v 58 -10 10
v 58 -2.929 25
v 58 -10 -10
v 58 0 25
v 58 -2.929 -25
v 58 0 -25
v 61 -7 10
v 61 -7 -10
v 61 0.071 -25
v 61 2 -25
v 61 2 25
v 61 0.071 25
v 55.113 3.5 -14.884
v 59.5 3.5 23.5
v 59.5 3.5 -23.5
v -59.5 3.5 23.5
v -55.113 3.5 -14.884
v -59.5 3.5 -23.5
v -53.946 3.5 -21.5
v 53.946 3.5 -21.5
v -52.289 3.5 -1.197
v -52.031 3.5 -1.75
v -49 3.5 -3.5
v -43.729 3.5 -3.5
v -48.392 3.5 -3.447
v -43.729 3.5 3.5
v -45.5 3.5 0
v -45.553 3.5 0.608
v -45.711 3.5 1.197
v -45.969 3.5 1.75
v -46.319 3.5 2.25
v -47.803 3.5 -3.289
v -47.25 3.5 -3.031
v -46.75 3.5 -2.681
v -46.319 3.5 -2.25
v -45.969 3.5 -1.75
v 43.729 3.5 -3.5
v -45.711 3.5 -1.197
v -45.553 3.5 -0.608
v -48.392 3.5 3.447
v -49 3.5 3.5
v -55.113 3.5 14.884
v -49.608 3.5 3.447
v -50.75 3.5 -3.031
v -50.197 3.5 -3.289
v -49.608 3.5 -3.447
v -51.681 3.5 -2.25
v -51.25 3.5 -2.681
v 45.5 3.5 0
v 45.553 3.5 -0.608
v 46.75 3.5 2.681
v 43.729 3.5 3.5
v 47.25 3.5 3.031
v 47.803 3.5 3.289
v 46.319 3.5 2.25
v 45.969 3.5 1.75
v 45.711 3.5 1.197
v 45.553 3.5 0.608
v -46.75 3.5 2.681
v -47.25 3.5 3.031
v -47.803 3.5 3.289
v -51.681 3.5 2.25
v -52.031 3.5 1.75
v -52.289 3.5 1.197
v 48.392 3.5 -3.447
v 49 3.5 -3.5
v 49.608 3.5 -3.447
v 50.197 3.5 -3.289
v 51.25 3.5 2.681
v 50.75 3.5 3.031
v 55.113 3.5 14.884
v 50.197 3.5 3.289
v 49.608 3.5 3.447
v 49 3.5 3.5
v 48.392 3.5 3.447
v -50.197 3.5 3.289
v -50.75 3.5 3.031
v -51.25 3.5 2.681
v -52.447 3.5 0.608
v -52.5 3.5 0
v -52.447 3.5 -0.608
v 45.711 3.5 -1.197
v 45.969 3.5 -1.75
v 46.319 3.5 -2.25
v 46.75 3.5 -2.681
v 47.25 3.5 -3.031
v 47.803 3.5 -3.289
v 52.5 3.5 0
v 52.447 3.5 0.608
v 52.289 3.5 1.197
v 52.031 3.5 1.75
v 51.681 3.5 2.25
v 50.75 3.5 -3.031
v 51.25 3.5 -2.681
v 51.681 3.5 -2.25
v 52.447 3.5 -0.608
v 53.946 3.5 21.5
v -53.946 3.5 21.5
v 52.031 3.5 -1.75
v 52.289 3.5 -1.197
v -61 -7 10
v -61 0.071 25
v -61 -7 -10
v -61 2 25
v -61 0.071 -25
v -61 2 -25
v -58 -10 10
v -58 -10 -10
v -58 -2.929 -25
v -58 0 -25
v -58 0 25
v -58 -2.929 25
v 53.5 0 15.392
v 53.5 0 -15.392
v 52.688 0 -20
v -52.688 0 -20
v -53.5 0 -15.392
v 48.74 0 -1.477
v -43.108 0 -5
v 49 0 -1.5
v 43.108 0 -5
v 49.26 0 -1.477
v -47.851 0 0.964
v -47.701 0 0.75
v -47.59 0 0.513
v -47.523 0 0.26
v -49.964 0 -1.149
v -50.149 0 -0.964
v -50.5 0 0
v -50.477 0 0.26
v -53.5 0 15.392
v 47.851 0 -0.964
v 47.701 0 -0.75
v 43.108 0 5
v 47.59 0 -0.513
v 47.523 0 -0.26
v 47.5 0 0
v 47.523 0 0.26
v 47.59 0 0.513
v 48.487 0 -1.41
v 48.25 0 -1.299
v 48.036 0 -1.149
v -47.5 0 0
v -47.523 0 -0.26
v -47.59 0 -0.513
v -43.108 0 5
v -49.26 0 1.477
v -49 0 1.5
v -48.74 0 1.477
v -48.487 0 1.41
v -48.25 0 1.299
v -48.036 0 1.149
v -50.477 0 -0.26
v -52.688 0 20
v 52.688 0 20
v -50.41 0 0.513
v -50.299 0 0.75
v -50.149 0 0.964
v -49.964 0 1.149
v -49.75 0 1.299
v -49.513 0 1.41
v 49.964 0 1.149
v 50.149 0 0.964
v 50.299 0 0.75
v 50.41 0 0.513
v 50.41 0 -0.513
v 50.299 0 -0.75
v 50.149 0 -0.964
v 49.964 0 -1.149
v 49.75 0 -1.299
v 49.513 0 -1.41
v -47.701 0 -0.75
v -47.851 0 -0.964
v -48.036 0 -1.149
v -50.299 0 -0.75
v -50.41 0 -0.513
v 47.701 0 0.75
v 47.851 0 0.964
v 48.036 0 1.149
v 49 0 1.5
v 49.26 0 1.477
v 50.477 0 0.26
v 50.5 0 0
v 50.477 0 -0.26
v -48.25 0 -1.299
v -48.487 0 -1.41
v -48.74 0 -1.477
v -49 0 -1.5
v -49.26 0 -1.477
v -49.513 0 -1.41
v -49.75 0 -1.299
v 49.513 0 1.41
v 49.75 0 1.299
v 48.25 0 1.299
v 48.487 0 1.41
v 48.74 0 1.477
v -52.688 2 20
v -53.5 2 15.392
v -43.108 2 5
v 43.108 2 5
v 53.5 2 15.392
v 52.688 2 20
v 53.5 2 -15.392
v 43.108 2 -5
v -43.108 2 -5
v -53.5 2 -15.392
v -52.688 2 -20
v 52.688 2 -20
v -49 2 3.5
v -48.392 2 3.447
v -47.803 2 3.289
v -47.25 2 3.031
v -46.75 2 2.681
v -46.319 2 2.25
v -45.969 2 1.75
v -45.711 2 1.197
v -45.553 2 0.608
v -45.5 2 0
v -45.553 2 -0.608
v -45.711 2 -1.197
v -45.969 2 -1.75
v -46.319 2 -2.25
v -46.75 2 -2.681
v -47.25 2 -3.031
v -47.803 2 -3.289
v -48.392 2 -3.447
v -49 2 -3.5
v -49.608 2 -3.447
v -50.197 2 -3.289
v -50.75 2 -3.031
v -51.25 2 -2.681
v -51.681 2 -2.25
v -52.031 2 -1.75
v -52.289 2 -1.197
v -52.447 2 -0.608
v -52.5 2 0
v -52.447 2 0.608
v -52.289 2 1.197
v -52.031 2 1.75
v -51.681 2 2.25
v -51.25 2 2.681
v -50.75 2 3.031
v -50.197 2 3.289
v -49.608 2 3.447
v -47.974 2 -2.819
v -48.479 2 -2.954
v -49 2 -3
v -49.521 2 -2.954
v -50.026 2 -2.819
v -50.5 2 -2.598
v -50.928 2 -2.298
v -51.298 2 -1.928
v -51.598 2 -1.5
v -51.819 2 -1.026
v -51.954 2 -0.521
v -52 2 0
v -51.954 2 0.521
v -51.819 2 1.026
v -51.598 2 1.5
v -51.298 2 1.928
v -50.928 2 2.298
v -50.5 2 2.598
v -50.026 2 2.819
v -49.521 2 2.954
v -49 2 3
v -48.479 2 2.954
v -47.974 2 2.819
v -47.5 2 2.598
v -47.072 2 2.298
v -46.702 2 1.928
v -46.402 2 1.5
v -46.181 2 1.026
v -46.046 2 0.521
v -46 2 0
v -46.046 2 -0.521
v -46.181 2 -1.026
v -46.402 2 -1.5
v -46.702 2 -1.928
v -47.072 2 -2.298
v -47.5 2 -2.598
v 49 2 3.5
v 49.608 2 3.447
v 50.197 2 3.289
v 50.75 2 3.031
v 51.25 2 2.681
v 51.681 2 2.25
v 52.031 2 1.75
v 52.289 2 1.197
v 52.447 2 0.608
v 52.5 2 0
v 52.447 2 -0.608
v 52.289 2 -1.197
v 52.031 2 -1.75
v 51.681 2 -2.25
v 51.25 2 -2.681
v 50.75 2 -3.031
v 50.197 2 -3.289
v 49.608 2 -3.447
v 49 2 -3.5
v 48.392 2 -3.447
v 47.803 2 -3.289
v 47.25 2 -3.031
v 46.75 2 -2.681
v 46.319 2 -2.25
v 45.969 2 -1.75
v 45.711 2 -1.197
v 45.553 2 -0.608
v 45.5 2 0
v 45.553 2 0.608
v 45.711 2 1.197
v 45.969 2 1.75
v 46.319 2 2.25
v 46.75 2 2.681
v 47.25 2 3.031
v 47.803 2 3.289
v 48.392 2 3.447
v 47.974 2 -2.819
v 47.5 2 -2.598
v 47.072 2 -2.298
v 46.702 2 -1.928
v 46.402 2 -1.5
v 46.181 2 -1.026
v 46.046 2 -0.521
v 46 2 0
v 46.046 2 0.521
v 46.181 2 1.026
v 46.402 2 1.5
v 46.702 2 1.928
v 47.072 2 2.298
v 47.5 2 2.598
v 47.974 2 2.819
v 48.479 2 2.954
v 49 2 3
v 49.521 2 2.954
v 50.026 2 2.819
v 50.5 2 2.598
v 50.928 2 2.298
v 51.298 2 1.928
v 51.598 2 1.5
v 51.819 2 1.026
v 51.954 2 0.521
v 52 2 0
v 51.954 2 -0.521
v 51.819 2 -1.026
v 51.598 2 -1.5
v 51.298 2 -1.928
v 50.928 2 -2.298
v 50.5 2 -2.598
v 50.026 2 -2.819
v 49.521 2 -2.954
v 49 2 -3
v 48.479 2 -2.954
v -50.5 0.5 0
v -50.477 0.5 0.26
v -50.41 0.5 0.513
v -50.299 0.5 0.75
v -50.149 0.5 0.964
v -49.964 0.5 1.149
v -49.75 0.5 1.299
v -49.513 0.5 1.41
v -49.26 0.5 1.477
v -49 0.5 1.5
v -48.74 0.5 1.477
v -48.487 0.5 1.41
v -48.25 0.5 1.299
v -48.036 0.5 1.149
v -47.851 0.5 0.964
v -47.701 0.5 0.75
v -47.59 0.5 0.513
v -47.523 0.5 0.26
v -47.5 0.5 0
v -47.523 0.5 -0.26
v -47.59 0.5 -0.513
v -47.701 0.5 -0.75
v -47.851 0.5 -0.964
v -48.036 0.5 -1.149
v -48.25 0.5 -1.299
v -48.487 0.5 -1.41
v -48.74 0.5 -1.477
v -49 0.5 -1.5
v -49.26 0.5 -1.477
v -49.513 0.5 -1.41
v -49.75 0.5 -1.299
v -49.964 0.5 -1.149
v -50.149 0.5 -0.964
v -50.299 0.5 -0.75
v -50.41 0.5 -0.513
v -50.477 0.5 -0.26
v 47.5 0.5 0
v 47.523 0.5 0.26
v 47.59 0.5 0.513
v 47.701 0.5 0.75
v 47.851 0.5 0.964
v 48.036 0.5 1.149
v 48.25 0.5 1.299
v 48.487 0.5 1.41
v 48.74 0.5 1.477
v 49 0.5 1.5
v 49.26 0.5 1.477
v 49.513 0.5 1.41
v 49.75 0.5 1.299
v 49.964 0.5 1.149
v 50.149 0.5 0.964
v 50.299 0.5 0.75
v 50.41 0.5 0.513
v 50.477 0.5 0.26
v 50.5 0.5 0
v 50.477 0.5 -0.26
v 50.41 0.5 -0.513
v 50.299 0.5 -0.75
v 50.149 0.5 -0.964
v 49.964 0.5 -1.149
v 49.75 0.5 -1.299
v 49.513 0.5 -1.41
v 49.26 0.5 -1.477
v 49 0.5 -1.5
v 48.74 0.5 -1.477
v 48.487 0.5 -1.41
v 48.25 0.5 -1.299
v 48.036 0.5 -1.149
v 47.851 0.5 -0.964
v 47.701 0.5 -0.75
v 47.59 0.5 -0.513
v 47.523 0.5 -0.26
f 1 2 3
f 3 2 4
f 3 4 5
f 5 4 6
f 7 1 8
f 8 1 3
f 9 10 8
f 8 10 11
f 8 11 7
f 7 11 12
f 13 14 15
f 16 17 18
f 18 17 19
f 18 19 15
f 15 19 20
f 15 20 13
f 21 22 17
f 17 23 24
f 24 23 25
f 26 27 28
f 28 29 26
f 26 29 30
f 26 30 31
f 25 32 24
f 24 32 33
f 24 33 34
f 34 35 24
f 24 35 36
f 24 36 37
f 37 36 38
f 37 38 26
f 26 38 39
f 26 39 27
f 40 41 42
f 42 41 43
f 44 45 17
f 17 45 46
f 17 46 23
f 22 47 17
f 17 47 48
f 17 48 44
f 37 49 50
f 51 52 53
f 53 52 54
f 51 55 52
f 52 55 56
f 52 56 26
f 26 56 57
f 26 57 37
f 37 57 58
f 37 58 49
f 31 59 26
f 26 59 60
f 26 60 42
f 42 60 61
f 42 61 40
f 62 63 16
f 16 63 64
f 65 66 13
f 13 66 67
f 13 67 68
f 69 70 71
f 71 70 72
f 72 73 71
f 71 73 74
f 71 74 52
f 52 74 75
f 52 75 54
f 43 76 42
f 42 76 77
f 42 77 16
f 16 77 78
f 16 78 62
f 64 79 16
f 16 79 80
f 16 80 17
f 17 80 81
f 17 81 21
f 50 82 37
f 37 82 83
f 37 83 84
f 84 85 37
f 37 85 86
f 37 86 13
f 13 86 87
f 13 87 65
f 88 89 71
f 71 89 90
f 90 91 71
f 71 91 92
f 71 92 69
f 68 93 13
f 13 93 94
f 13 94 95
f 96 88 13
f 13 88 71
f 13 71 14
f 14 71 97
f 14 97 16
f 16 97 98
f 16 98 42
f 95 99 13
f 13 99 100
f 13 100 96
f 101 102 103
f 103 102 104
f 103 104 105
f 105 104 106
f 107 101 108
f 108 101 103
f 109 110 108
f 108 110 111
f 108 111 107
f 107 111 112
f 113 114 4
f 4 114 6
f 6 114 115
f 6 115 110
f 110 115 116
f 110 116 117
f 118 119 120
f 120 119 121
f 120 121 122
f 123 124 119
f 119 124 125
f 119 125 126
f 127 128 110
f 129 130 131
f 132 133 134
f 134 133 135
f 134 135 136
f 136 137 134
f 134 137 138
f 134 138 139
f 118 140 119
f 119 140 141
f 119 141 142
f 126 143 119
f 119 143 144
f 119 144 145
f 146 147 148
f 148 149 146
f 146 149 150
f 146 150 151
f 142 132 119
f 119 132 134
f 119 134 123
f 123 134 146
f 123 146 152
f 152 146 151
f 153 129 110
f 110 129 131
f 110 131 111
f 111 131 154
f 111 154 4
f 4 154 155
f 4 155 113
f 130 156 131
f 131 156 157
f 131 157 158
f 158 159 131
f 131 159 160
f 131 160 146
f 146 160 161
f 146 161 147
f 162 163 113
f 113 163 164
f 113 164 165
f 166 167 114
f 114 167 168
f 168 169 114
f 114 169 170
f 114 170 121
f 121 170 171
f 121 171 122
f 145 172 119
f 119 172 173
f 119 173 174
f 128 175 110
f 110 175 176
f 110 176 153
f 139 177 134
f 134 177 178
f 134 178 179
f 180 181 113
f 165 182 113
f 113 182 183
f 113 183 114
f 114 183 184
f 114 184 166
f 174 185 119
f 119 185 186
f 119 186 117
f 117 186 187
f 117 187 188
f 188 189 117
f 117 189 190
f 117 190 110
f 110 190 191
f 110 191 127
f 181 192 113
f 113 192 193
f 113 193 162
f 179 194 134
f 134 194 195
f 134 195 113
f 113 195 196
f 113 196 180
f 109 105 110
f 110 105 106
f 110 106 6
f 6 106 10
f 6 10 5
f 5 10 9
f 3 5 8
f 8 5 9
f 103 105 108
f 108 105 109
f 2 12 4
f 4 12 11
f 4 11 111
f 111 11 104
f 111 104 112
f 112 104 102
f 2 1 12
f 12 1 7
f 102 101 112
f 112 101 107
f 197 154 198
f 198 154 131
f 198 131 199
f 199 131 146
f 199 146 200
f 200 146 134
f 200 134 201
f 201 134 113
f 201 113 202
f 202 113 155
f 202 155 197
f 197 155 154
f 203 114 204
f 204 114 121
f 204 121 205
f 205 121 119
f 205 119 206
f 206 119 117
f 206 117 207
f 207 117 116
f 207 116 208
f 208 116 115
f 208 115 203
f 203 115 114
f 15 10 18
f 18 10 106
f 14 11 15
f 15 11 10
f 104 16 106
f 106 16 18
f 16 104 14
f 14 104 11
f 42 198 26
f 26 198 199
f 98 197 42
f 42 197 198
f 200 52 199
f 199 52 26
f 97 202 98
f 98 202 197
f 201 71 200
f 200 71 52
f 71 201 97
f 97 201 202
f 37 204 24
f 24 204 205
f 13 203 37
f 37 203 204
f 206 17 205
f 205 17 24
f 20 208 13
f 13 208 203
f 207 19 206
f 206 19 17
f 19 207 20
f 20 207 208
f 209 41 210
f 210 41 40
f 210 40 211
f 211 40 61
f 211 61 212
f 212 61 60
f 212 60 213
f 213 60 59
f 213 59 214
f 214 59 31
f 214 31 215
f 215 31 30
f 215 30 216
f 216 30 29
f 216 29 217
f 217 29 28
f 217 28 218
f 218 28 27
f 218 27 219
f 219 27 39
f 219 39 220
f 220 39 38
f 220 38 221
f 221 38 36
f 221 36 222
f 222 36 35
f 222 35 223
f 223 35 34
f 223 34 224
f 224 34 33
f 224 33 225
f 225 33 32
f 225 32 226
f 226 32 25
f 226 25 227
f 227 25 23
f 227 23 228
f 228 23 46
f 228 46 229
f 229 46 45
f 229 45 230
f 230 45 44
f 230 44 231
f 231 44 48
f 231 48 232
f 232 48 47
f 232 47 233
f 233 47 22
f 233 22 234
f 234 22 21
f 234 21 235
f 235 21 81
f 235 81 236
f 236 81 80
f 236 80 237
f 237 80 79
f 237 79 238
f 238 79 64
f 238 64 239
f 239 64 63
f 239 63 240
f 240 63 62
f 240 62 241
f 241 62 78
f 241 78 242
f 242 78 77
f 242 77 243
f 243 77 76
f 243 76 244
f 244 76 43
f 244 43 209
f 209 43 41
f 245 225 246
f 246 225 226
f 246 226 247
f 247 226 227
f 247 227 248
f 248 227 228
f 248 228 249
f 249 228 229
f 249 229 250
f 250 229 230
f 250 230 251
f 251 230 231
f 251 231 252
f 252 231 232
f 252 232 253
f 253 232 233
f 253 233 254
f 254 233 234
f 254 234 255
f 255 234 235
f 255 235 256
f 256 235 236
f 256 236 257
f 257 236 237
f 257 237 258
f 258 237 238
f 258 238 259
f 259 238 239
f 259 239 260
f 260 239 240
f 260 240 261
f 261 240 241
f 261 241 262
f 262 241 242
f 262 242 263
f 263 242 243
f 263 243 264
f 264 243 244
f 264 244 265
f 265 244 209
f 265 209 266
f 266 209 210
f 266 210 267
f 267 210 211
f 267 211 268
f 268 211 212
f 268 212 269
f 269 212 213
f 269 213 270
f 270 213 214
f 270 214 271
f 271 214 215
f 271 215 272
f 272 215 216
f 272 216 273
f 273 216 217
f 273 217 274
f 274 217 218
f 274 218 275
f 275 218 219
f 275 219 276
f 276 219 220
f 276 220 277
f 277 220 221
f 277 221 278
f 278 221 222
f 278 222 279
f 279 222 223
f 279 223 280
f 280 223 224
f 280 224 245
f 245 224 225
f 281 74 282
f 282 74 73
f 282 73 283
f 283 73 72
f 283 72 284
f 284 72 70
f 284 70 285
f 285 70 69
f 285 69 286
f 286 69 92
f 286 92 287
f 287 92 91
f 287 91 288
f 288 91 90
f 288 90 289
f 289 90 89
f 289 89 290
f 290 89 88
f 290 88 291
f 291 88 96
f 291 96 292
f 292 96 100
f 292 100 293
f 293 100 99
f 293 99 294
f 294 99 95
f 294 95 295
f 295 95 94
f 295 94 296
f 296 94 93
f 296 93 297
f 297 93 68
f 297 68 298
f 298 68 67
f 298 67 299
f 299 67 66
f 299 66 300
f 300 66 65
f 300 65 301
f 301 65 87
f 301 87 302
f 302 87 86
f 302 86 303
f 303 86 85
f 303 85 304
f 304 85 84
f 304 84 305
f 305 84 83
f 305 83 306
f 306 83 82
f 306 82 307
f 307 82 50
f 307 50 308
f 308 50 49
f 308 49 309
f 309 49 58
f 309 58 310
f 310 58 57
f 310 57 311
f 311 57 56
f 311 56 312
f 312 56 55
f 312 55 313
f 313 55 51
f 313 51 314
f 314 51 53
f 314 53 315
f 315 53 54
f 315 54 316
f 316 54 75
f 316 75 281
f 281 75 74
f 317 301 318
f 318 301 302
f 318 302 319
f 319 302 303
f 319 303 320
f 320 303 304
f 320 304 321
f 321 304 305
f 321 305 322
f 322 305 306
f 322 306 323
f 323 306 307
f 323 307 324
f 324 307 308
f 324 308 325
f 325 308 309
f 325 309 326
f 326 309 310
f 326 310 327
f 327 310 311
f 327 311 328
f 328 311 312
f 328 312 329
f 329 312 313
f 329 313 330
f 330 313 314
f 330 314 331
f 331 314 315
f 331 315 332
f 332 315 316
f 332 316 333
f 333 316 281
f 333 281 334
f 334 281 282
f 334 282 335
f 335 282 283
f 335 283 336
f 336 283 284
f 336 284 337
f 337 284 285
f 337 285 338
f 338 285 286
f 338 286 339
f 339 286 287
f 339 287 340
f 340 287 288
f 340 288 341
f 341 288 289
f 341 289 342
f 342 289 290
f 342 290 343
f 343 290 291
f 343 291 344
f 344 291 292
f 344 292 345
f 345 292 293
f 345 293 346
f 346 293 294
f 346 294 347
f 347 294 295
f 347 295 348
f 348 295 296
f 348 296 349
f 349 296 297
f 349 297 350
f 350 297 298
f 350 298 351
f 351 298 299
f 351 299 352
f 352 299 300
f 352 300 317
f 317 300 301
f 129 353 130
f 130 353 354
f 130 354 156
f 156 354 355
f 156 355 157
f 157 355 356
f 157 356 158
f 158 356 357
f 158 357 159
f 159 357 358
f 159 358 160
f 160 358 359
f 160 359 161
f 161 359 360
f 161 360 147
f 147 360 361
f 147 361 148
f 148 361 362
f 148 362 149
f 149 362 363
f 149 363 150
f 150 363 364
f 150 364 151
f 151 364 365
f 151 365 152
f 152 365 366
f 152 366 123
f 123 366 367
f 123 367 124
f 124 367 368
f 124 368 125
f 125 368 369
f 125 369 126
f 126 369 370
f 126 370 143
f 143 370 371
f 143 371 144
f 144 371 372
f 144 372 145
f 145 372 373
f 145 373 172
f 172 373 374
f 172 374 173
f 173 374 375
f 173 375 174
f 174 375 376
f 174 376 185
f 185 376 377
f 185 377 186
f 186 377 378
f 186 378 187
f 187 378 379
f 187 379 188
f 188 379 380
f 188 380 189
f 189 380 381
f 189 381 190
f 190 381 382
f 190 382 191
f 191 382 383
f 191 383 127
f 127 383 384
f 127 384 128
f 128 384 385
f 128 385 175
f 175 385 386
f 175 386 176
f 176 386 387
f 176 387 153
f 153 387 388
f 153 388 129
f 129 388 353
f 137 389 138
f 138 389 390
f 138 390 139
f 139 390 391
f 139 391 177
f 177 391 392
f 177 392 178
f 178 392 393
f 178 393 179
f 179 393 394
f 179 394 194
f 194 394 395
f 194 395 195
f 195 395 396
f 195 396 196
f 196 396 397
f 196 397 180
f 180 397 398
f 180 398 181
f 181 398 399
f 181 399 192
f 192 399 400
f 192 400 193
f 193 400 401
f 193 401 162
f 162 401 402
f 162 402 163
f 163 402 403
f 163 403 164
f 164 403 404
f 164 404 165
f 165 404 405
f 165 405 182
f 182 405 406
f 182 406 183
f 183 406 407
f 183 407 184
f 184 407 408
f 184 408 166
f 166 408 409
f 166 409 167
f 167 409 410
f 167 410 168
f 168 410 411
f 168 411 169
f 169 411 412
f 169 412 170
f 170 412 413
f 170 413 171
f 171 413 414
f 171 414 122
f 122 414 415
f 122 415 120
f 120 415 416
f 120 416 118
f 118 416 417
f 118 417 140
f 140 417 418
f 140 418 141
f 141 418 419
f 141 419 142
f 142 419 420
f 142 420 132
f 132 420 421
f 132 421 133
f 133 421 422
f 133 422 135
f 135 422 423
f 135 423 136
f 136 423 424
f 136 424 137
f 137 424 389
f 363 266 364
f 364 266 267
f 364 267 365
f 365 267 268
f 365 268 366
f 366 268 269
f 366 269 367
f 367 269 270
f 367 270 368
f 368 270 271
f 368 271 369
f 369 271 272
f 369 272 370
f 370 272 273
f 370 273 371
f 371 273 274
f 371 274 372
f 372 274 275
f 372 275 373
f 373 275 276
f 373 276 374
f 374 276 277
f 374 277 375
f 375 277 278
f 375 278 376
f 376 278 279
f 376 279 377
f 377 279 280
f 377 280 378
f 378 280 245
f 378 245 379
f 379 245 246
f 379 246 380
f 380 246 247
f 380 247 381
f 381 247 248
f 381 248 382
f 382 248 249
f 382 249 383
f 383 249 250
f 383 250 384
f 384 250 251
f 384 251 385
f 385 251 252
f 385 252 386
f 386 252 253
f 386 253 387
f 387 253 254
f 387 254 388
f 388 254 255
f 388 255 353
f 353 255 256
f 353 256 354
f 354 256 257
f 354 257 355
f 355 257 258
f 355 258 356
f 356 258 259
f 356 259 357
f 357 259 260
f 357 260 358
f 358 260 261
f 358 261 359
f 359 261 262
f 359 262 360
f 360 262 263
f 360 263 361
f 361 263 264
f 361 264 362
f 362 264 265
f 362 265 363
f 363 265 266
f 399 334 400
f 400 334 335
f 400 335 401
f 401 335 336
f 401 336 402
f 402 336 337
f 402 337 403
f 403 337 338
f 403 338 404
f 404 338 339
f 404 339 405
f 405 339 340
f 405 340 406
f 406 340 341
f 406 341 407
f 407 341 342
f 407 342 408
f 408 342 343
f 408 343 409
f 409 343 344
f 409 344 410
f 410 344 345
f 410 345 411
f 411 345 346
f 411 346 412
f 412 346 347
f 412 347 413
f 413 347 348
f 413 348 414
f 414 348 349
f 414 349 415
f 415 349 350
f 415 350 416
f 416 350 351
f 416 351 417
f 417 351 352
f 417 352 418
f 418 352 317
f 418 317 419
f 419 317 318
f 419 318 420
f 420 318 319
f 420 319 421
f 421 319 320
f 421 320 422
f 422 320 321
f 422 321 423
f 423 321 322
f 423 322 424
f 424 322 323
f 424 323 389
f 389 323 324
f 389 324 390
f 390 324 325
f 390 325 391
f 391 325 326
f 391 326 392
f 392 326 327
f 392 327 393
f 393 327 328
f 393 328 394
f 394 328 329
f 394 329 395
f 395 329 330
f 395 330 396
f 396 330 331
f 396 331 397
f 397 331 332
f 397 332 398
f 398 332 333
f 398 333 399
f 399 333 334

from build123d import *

# Parameters (mm, degrees)
BOSS_EXTRUDE1_DEPTH = 10
CUT_EXTRUDE3_DEPTH  = 68.292273107
CHAMFER2_SIZE       = 1.5
SKETCH2_R           = 3.5
CUT_EXTRUDE1_DEPTH  = 1.5
SKETCH3_R           = 1.5
CUT_EXTRUDE2_DEPTH  = 68.007462417
CHAMFER1_SIZE       = 1.5


with BuildPart() as part:
    # Sketch1 → Boss-Extrude1 (new, symmetric)
    with BuildSketch(Plane.XY):
        Polygon((-58, 0), (58, 0), (58, -10), (61, -7), (61, 3.5), (-61, 3.5), (-61, -7), (-58, -10), align=None)
    extrude(amount=BOSS_EXTRUDE1_DEPTH, both=True)

    # Sketch4 → section 0 of loft1
    with BuildSketch(Plane.XY.offset(-25), mode=Mode.PRIVATE) as loft1_s0:
        with BuildLine():
            Line((58, -2.928932188), (61, 0.071067812))
            Line((61, 0.071067812), (61, 3.5))
            Line((61, 3.5), (-61, 3.5))
            Line((-61, 3.5), (-61, 0.071067812))
            Line((-61, 0.071067812), (-58, -2.928932188))
            Line((-58, -2.928932188), (-58, 0))
            Line((-58, 0), (58, 0))
            Line((58, 0), (58, -2.928932188))
        make_face()
    # loft up to a face of the part (loft1)
    loft([loft1_s0.sketch, part.faces().sort_by_distance((0, 1.105125523, -10))[0]])

    # Sketch5 → section 1 of loft2
    with BuildSketch(Plane.XY.offset(25), mode=Mode.PRIVATE) as loft2_s1:
        with BuildLine():
            Line((-58, 0), (58, 0))
            Line((58, 0), (58, -2.928932188))
            Line((58, -2.928932188), (61, 0.071067812))
            Line((61, 0.071067812), (61, 3.5))
            Line((61, 3.5), (-61, 3.5))
            Line((-61, 3.5), (-61, 0.071067812))
            Line((-61, 0.071067812), (-58, -2.928932188))
            Line((-58, -2.928932188), (-58, 0))
        make_face()
    # loft from a face of the part (loft2)
    loft([part.faces().sort_by_distance((0, 1.105125523, 10))[0], loft2_s1.sketch])

    # Sketch6 → Cut-Extrude3 (cut, through all)
    with BuildSketch(Plane(origin=(0, 3.5, 0), x_dir=(1, 0, 0), z_dir=(0, 1, 0))):
        Polygon((43.107671767, 5), (-43.107671767, 5), (-53.5, 15.392328233), (-52.687543149, 20), (52.687543149, 20), (53.5, 15.392328233), align=None)
        Polygon((43.107671767, -5), (-43.107671767, -5), (-53.5, -15.392328233), (-52.687543149, -20), (52.687543149, -20), (53.5, -15.392328233), align=None)
    extrude(amount=-CUT_EXTRUDE3_DEPTH, mode=Mode.SUBTRACT)

    # Chamfer2
    chamfer2_edges = [part.edges().sort_by_distance(p)[0] for p in [
        (48.303835883, 3.5, -10.196164117),
        (53.093771575, 3.5, -17.696164117),
        (0, 3.5, -20),
        (-53.093771575, 3.5, -17.696164117),
        (-48.303835883, 3.5, -10.196164117),
        (0, 3.5, -5),
        (-53.093771575, 3.5, 17.696164117),
        (0, 3.5, 20),
        (53.093771575, 3.5, 17.696164117),
        (48.303835883, 3.5, 10.196164117),
        (0, 3.5, 5),
        (-48.303835883, 3.5, 10.196164117),
        (-61, 3.5, 0),
        (61, 3.5, 0),
        (0, 3.5, -25),
        (0, 3.5, 25),
    ]]
    chamfer(chamfer2_edges, length=CHAMFER2_SIZE)

    # Sketch2 → Cut-Extrude1 (cut)
    with BuildSketch(Plane(origin=(0, 3.5, 0), x_dir=(1, 0, 0), z_dir=(0, 1, 0))):
        with Locations(Location((49, 0, 0), (0, 0, 270))):
            Circle(SKETCH2_R)
        with Locations(Location((-49, 0, 0), (0, 0, 270))):
            Circle(SKETCH2_R)
    extrude(amount=-CUT_EXTRUDE1_DEPTH, mode=Mode.SUBTRACT)

    # Sketch3 → Cut-Extrude2 (cut, through all)
    with BuildSketch(Plane(origin=(0, 2, 0), x_dir=(1, 0, 0), z_dir=(0, 1, 0))):
        with Locations(Location((49, 0, 0), (0, 0, 180))):
            Circle(SKETCH3_R)
        with Locations(Location((-49, 0, 0), (0, 0, 180))):
            Circle(SKETCH3_R)
    extrude(amount=-CUT_EXTRUDE2_DEPTH, mode=Mode.SUBTRACT)

    # Chamfer1
    chamfer1_edges = [part.edges().sort_by_distance(p)[0] for p in [
        (50.5, 2, 0),
        (-47.5, 2, 0),
    ]]
    chamfer(chamfer1_edges, length=CHAMFER1_SIZE)


solid = part.part
